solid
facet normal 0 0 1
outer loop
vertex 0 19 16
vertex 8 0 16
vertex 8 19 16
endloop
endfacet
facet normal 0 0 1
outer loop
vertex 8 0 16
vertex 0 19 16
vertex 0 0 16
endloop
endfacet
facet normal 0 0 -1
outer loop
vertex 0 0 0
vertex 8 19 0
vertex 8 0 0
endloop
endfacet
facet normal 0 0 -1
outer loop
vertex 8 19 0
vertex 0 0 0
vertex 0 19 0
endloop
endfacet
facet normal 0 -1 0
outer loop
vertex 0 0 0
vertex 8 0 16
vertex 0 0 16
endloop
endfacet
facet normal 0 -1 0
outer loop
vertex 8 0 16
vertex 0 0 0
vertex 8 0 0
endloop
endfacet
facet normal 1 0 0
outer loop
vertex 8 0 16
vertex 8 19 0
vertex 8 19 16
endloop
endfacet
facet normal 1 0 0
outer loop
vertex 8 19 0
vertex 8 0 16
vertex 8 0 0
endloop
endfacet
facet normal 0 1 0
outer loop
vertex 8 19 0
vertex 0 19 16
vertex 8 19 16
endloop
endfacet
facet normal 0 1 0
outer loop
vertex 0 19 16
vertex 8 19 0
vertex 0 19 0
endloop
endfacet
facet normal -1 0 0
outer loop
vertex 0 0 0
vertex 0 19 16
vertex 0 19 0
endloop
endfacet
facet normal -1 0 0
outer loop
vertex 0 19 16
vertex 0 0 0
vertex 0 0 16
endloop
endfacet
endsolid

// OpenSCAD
height = 19;

// how big the frame itself will be
border_size = 8;

cube([border_size, height, border_size * 2]);
